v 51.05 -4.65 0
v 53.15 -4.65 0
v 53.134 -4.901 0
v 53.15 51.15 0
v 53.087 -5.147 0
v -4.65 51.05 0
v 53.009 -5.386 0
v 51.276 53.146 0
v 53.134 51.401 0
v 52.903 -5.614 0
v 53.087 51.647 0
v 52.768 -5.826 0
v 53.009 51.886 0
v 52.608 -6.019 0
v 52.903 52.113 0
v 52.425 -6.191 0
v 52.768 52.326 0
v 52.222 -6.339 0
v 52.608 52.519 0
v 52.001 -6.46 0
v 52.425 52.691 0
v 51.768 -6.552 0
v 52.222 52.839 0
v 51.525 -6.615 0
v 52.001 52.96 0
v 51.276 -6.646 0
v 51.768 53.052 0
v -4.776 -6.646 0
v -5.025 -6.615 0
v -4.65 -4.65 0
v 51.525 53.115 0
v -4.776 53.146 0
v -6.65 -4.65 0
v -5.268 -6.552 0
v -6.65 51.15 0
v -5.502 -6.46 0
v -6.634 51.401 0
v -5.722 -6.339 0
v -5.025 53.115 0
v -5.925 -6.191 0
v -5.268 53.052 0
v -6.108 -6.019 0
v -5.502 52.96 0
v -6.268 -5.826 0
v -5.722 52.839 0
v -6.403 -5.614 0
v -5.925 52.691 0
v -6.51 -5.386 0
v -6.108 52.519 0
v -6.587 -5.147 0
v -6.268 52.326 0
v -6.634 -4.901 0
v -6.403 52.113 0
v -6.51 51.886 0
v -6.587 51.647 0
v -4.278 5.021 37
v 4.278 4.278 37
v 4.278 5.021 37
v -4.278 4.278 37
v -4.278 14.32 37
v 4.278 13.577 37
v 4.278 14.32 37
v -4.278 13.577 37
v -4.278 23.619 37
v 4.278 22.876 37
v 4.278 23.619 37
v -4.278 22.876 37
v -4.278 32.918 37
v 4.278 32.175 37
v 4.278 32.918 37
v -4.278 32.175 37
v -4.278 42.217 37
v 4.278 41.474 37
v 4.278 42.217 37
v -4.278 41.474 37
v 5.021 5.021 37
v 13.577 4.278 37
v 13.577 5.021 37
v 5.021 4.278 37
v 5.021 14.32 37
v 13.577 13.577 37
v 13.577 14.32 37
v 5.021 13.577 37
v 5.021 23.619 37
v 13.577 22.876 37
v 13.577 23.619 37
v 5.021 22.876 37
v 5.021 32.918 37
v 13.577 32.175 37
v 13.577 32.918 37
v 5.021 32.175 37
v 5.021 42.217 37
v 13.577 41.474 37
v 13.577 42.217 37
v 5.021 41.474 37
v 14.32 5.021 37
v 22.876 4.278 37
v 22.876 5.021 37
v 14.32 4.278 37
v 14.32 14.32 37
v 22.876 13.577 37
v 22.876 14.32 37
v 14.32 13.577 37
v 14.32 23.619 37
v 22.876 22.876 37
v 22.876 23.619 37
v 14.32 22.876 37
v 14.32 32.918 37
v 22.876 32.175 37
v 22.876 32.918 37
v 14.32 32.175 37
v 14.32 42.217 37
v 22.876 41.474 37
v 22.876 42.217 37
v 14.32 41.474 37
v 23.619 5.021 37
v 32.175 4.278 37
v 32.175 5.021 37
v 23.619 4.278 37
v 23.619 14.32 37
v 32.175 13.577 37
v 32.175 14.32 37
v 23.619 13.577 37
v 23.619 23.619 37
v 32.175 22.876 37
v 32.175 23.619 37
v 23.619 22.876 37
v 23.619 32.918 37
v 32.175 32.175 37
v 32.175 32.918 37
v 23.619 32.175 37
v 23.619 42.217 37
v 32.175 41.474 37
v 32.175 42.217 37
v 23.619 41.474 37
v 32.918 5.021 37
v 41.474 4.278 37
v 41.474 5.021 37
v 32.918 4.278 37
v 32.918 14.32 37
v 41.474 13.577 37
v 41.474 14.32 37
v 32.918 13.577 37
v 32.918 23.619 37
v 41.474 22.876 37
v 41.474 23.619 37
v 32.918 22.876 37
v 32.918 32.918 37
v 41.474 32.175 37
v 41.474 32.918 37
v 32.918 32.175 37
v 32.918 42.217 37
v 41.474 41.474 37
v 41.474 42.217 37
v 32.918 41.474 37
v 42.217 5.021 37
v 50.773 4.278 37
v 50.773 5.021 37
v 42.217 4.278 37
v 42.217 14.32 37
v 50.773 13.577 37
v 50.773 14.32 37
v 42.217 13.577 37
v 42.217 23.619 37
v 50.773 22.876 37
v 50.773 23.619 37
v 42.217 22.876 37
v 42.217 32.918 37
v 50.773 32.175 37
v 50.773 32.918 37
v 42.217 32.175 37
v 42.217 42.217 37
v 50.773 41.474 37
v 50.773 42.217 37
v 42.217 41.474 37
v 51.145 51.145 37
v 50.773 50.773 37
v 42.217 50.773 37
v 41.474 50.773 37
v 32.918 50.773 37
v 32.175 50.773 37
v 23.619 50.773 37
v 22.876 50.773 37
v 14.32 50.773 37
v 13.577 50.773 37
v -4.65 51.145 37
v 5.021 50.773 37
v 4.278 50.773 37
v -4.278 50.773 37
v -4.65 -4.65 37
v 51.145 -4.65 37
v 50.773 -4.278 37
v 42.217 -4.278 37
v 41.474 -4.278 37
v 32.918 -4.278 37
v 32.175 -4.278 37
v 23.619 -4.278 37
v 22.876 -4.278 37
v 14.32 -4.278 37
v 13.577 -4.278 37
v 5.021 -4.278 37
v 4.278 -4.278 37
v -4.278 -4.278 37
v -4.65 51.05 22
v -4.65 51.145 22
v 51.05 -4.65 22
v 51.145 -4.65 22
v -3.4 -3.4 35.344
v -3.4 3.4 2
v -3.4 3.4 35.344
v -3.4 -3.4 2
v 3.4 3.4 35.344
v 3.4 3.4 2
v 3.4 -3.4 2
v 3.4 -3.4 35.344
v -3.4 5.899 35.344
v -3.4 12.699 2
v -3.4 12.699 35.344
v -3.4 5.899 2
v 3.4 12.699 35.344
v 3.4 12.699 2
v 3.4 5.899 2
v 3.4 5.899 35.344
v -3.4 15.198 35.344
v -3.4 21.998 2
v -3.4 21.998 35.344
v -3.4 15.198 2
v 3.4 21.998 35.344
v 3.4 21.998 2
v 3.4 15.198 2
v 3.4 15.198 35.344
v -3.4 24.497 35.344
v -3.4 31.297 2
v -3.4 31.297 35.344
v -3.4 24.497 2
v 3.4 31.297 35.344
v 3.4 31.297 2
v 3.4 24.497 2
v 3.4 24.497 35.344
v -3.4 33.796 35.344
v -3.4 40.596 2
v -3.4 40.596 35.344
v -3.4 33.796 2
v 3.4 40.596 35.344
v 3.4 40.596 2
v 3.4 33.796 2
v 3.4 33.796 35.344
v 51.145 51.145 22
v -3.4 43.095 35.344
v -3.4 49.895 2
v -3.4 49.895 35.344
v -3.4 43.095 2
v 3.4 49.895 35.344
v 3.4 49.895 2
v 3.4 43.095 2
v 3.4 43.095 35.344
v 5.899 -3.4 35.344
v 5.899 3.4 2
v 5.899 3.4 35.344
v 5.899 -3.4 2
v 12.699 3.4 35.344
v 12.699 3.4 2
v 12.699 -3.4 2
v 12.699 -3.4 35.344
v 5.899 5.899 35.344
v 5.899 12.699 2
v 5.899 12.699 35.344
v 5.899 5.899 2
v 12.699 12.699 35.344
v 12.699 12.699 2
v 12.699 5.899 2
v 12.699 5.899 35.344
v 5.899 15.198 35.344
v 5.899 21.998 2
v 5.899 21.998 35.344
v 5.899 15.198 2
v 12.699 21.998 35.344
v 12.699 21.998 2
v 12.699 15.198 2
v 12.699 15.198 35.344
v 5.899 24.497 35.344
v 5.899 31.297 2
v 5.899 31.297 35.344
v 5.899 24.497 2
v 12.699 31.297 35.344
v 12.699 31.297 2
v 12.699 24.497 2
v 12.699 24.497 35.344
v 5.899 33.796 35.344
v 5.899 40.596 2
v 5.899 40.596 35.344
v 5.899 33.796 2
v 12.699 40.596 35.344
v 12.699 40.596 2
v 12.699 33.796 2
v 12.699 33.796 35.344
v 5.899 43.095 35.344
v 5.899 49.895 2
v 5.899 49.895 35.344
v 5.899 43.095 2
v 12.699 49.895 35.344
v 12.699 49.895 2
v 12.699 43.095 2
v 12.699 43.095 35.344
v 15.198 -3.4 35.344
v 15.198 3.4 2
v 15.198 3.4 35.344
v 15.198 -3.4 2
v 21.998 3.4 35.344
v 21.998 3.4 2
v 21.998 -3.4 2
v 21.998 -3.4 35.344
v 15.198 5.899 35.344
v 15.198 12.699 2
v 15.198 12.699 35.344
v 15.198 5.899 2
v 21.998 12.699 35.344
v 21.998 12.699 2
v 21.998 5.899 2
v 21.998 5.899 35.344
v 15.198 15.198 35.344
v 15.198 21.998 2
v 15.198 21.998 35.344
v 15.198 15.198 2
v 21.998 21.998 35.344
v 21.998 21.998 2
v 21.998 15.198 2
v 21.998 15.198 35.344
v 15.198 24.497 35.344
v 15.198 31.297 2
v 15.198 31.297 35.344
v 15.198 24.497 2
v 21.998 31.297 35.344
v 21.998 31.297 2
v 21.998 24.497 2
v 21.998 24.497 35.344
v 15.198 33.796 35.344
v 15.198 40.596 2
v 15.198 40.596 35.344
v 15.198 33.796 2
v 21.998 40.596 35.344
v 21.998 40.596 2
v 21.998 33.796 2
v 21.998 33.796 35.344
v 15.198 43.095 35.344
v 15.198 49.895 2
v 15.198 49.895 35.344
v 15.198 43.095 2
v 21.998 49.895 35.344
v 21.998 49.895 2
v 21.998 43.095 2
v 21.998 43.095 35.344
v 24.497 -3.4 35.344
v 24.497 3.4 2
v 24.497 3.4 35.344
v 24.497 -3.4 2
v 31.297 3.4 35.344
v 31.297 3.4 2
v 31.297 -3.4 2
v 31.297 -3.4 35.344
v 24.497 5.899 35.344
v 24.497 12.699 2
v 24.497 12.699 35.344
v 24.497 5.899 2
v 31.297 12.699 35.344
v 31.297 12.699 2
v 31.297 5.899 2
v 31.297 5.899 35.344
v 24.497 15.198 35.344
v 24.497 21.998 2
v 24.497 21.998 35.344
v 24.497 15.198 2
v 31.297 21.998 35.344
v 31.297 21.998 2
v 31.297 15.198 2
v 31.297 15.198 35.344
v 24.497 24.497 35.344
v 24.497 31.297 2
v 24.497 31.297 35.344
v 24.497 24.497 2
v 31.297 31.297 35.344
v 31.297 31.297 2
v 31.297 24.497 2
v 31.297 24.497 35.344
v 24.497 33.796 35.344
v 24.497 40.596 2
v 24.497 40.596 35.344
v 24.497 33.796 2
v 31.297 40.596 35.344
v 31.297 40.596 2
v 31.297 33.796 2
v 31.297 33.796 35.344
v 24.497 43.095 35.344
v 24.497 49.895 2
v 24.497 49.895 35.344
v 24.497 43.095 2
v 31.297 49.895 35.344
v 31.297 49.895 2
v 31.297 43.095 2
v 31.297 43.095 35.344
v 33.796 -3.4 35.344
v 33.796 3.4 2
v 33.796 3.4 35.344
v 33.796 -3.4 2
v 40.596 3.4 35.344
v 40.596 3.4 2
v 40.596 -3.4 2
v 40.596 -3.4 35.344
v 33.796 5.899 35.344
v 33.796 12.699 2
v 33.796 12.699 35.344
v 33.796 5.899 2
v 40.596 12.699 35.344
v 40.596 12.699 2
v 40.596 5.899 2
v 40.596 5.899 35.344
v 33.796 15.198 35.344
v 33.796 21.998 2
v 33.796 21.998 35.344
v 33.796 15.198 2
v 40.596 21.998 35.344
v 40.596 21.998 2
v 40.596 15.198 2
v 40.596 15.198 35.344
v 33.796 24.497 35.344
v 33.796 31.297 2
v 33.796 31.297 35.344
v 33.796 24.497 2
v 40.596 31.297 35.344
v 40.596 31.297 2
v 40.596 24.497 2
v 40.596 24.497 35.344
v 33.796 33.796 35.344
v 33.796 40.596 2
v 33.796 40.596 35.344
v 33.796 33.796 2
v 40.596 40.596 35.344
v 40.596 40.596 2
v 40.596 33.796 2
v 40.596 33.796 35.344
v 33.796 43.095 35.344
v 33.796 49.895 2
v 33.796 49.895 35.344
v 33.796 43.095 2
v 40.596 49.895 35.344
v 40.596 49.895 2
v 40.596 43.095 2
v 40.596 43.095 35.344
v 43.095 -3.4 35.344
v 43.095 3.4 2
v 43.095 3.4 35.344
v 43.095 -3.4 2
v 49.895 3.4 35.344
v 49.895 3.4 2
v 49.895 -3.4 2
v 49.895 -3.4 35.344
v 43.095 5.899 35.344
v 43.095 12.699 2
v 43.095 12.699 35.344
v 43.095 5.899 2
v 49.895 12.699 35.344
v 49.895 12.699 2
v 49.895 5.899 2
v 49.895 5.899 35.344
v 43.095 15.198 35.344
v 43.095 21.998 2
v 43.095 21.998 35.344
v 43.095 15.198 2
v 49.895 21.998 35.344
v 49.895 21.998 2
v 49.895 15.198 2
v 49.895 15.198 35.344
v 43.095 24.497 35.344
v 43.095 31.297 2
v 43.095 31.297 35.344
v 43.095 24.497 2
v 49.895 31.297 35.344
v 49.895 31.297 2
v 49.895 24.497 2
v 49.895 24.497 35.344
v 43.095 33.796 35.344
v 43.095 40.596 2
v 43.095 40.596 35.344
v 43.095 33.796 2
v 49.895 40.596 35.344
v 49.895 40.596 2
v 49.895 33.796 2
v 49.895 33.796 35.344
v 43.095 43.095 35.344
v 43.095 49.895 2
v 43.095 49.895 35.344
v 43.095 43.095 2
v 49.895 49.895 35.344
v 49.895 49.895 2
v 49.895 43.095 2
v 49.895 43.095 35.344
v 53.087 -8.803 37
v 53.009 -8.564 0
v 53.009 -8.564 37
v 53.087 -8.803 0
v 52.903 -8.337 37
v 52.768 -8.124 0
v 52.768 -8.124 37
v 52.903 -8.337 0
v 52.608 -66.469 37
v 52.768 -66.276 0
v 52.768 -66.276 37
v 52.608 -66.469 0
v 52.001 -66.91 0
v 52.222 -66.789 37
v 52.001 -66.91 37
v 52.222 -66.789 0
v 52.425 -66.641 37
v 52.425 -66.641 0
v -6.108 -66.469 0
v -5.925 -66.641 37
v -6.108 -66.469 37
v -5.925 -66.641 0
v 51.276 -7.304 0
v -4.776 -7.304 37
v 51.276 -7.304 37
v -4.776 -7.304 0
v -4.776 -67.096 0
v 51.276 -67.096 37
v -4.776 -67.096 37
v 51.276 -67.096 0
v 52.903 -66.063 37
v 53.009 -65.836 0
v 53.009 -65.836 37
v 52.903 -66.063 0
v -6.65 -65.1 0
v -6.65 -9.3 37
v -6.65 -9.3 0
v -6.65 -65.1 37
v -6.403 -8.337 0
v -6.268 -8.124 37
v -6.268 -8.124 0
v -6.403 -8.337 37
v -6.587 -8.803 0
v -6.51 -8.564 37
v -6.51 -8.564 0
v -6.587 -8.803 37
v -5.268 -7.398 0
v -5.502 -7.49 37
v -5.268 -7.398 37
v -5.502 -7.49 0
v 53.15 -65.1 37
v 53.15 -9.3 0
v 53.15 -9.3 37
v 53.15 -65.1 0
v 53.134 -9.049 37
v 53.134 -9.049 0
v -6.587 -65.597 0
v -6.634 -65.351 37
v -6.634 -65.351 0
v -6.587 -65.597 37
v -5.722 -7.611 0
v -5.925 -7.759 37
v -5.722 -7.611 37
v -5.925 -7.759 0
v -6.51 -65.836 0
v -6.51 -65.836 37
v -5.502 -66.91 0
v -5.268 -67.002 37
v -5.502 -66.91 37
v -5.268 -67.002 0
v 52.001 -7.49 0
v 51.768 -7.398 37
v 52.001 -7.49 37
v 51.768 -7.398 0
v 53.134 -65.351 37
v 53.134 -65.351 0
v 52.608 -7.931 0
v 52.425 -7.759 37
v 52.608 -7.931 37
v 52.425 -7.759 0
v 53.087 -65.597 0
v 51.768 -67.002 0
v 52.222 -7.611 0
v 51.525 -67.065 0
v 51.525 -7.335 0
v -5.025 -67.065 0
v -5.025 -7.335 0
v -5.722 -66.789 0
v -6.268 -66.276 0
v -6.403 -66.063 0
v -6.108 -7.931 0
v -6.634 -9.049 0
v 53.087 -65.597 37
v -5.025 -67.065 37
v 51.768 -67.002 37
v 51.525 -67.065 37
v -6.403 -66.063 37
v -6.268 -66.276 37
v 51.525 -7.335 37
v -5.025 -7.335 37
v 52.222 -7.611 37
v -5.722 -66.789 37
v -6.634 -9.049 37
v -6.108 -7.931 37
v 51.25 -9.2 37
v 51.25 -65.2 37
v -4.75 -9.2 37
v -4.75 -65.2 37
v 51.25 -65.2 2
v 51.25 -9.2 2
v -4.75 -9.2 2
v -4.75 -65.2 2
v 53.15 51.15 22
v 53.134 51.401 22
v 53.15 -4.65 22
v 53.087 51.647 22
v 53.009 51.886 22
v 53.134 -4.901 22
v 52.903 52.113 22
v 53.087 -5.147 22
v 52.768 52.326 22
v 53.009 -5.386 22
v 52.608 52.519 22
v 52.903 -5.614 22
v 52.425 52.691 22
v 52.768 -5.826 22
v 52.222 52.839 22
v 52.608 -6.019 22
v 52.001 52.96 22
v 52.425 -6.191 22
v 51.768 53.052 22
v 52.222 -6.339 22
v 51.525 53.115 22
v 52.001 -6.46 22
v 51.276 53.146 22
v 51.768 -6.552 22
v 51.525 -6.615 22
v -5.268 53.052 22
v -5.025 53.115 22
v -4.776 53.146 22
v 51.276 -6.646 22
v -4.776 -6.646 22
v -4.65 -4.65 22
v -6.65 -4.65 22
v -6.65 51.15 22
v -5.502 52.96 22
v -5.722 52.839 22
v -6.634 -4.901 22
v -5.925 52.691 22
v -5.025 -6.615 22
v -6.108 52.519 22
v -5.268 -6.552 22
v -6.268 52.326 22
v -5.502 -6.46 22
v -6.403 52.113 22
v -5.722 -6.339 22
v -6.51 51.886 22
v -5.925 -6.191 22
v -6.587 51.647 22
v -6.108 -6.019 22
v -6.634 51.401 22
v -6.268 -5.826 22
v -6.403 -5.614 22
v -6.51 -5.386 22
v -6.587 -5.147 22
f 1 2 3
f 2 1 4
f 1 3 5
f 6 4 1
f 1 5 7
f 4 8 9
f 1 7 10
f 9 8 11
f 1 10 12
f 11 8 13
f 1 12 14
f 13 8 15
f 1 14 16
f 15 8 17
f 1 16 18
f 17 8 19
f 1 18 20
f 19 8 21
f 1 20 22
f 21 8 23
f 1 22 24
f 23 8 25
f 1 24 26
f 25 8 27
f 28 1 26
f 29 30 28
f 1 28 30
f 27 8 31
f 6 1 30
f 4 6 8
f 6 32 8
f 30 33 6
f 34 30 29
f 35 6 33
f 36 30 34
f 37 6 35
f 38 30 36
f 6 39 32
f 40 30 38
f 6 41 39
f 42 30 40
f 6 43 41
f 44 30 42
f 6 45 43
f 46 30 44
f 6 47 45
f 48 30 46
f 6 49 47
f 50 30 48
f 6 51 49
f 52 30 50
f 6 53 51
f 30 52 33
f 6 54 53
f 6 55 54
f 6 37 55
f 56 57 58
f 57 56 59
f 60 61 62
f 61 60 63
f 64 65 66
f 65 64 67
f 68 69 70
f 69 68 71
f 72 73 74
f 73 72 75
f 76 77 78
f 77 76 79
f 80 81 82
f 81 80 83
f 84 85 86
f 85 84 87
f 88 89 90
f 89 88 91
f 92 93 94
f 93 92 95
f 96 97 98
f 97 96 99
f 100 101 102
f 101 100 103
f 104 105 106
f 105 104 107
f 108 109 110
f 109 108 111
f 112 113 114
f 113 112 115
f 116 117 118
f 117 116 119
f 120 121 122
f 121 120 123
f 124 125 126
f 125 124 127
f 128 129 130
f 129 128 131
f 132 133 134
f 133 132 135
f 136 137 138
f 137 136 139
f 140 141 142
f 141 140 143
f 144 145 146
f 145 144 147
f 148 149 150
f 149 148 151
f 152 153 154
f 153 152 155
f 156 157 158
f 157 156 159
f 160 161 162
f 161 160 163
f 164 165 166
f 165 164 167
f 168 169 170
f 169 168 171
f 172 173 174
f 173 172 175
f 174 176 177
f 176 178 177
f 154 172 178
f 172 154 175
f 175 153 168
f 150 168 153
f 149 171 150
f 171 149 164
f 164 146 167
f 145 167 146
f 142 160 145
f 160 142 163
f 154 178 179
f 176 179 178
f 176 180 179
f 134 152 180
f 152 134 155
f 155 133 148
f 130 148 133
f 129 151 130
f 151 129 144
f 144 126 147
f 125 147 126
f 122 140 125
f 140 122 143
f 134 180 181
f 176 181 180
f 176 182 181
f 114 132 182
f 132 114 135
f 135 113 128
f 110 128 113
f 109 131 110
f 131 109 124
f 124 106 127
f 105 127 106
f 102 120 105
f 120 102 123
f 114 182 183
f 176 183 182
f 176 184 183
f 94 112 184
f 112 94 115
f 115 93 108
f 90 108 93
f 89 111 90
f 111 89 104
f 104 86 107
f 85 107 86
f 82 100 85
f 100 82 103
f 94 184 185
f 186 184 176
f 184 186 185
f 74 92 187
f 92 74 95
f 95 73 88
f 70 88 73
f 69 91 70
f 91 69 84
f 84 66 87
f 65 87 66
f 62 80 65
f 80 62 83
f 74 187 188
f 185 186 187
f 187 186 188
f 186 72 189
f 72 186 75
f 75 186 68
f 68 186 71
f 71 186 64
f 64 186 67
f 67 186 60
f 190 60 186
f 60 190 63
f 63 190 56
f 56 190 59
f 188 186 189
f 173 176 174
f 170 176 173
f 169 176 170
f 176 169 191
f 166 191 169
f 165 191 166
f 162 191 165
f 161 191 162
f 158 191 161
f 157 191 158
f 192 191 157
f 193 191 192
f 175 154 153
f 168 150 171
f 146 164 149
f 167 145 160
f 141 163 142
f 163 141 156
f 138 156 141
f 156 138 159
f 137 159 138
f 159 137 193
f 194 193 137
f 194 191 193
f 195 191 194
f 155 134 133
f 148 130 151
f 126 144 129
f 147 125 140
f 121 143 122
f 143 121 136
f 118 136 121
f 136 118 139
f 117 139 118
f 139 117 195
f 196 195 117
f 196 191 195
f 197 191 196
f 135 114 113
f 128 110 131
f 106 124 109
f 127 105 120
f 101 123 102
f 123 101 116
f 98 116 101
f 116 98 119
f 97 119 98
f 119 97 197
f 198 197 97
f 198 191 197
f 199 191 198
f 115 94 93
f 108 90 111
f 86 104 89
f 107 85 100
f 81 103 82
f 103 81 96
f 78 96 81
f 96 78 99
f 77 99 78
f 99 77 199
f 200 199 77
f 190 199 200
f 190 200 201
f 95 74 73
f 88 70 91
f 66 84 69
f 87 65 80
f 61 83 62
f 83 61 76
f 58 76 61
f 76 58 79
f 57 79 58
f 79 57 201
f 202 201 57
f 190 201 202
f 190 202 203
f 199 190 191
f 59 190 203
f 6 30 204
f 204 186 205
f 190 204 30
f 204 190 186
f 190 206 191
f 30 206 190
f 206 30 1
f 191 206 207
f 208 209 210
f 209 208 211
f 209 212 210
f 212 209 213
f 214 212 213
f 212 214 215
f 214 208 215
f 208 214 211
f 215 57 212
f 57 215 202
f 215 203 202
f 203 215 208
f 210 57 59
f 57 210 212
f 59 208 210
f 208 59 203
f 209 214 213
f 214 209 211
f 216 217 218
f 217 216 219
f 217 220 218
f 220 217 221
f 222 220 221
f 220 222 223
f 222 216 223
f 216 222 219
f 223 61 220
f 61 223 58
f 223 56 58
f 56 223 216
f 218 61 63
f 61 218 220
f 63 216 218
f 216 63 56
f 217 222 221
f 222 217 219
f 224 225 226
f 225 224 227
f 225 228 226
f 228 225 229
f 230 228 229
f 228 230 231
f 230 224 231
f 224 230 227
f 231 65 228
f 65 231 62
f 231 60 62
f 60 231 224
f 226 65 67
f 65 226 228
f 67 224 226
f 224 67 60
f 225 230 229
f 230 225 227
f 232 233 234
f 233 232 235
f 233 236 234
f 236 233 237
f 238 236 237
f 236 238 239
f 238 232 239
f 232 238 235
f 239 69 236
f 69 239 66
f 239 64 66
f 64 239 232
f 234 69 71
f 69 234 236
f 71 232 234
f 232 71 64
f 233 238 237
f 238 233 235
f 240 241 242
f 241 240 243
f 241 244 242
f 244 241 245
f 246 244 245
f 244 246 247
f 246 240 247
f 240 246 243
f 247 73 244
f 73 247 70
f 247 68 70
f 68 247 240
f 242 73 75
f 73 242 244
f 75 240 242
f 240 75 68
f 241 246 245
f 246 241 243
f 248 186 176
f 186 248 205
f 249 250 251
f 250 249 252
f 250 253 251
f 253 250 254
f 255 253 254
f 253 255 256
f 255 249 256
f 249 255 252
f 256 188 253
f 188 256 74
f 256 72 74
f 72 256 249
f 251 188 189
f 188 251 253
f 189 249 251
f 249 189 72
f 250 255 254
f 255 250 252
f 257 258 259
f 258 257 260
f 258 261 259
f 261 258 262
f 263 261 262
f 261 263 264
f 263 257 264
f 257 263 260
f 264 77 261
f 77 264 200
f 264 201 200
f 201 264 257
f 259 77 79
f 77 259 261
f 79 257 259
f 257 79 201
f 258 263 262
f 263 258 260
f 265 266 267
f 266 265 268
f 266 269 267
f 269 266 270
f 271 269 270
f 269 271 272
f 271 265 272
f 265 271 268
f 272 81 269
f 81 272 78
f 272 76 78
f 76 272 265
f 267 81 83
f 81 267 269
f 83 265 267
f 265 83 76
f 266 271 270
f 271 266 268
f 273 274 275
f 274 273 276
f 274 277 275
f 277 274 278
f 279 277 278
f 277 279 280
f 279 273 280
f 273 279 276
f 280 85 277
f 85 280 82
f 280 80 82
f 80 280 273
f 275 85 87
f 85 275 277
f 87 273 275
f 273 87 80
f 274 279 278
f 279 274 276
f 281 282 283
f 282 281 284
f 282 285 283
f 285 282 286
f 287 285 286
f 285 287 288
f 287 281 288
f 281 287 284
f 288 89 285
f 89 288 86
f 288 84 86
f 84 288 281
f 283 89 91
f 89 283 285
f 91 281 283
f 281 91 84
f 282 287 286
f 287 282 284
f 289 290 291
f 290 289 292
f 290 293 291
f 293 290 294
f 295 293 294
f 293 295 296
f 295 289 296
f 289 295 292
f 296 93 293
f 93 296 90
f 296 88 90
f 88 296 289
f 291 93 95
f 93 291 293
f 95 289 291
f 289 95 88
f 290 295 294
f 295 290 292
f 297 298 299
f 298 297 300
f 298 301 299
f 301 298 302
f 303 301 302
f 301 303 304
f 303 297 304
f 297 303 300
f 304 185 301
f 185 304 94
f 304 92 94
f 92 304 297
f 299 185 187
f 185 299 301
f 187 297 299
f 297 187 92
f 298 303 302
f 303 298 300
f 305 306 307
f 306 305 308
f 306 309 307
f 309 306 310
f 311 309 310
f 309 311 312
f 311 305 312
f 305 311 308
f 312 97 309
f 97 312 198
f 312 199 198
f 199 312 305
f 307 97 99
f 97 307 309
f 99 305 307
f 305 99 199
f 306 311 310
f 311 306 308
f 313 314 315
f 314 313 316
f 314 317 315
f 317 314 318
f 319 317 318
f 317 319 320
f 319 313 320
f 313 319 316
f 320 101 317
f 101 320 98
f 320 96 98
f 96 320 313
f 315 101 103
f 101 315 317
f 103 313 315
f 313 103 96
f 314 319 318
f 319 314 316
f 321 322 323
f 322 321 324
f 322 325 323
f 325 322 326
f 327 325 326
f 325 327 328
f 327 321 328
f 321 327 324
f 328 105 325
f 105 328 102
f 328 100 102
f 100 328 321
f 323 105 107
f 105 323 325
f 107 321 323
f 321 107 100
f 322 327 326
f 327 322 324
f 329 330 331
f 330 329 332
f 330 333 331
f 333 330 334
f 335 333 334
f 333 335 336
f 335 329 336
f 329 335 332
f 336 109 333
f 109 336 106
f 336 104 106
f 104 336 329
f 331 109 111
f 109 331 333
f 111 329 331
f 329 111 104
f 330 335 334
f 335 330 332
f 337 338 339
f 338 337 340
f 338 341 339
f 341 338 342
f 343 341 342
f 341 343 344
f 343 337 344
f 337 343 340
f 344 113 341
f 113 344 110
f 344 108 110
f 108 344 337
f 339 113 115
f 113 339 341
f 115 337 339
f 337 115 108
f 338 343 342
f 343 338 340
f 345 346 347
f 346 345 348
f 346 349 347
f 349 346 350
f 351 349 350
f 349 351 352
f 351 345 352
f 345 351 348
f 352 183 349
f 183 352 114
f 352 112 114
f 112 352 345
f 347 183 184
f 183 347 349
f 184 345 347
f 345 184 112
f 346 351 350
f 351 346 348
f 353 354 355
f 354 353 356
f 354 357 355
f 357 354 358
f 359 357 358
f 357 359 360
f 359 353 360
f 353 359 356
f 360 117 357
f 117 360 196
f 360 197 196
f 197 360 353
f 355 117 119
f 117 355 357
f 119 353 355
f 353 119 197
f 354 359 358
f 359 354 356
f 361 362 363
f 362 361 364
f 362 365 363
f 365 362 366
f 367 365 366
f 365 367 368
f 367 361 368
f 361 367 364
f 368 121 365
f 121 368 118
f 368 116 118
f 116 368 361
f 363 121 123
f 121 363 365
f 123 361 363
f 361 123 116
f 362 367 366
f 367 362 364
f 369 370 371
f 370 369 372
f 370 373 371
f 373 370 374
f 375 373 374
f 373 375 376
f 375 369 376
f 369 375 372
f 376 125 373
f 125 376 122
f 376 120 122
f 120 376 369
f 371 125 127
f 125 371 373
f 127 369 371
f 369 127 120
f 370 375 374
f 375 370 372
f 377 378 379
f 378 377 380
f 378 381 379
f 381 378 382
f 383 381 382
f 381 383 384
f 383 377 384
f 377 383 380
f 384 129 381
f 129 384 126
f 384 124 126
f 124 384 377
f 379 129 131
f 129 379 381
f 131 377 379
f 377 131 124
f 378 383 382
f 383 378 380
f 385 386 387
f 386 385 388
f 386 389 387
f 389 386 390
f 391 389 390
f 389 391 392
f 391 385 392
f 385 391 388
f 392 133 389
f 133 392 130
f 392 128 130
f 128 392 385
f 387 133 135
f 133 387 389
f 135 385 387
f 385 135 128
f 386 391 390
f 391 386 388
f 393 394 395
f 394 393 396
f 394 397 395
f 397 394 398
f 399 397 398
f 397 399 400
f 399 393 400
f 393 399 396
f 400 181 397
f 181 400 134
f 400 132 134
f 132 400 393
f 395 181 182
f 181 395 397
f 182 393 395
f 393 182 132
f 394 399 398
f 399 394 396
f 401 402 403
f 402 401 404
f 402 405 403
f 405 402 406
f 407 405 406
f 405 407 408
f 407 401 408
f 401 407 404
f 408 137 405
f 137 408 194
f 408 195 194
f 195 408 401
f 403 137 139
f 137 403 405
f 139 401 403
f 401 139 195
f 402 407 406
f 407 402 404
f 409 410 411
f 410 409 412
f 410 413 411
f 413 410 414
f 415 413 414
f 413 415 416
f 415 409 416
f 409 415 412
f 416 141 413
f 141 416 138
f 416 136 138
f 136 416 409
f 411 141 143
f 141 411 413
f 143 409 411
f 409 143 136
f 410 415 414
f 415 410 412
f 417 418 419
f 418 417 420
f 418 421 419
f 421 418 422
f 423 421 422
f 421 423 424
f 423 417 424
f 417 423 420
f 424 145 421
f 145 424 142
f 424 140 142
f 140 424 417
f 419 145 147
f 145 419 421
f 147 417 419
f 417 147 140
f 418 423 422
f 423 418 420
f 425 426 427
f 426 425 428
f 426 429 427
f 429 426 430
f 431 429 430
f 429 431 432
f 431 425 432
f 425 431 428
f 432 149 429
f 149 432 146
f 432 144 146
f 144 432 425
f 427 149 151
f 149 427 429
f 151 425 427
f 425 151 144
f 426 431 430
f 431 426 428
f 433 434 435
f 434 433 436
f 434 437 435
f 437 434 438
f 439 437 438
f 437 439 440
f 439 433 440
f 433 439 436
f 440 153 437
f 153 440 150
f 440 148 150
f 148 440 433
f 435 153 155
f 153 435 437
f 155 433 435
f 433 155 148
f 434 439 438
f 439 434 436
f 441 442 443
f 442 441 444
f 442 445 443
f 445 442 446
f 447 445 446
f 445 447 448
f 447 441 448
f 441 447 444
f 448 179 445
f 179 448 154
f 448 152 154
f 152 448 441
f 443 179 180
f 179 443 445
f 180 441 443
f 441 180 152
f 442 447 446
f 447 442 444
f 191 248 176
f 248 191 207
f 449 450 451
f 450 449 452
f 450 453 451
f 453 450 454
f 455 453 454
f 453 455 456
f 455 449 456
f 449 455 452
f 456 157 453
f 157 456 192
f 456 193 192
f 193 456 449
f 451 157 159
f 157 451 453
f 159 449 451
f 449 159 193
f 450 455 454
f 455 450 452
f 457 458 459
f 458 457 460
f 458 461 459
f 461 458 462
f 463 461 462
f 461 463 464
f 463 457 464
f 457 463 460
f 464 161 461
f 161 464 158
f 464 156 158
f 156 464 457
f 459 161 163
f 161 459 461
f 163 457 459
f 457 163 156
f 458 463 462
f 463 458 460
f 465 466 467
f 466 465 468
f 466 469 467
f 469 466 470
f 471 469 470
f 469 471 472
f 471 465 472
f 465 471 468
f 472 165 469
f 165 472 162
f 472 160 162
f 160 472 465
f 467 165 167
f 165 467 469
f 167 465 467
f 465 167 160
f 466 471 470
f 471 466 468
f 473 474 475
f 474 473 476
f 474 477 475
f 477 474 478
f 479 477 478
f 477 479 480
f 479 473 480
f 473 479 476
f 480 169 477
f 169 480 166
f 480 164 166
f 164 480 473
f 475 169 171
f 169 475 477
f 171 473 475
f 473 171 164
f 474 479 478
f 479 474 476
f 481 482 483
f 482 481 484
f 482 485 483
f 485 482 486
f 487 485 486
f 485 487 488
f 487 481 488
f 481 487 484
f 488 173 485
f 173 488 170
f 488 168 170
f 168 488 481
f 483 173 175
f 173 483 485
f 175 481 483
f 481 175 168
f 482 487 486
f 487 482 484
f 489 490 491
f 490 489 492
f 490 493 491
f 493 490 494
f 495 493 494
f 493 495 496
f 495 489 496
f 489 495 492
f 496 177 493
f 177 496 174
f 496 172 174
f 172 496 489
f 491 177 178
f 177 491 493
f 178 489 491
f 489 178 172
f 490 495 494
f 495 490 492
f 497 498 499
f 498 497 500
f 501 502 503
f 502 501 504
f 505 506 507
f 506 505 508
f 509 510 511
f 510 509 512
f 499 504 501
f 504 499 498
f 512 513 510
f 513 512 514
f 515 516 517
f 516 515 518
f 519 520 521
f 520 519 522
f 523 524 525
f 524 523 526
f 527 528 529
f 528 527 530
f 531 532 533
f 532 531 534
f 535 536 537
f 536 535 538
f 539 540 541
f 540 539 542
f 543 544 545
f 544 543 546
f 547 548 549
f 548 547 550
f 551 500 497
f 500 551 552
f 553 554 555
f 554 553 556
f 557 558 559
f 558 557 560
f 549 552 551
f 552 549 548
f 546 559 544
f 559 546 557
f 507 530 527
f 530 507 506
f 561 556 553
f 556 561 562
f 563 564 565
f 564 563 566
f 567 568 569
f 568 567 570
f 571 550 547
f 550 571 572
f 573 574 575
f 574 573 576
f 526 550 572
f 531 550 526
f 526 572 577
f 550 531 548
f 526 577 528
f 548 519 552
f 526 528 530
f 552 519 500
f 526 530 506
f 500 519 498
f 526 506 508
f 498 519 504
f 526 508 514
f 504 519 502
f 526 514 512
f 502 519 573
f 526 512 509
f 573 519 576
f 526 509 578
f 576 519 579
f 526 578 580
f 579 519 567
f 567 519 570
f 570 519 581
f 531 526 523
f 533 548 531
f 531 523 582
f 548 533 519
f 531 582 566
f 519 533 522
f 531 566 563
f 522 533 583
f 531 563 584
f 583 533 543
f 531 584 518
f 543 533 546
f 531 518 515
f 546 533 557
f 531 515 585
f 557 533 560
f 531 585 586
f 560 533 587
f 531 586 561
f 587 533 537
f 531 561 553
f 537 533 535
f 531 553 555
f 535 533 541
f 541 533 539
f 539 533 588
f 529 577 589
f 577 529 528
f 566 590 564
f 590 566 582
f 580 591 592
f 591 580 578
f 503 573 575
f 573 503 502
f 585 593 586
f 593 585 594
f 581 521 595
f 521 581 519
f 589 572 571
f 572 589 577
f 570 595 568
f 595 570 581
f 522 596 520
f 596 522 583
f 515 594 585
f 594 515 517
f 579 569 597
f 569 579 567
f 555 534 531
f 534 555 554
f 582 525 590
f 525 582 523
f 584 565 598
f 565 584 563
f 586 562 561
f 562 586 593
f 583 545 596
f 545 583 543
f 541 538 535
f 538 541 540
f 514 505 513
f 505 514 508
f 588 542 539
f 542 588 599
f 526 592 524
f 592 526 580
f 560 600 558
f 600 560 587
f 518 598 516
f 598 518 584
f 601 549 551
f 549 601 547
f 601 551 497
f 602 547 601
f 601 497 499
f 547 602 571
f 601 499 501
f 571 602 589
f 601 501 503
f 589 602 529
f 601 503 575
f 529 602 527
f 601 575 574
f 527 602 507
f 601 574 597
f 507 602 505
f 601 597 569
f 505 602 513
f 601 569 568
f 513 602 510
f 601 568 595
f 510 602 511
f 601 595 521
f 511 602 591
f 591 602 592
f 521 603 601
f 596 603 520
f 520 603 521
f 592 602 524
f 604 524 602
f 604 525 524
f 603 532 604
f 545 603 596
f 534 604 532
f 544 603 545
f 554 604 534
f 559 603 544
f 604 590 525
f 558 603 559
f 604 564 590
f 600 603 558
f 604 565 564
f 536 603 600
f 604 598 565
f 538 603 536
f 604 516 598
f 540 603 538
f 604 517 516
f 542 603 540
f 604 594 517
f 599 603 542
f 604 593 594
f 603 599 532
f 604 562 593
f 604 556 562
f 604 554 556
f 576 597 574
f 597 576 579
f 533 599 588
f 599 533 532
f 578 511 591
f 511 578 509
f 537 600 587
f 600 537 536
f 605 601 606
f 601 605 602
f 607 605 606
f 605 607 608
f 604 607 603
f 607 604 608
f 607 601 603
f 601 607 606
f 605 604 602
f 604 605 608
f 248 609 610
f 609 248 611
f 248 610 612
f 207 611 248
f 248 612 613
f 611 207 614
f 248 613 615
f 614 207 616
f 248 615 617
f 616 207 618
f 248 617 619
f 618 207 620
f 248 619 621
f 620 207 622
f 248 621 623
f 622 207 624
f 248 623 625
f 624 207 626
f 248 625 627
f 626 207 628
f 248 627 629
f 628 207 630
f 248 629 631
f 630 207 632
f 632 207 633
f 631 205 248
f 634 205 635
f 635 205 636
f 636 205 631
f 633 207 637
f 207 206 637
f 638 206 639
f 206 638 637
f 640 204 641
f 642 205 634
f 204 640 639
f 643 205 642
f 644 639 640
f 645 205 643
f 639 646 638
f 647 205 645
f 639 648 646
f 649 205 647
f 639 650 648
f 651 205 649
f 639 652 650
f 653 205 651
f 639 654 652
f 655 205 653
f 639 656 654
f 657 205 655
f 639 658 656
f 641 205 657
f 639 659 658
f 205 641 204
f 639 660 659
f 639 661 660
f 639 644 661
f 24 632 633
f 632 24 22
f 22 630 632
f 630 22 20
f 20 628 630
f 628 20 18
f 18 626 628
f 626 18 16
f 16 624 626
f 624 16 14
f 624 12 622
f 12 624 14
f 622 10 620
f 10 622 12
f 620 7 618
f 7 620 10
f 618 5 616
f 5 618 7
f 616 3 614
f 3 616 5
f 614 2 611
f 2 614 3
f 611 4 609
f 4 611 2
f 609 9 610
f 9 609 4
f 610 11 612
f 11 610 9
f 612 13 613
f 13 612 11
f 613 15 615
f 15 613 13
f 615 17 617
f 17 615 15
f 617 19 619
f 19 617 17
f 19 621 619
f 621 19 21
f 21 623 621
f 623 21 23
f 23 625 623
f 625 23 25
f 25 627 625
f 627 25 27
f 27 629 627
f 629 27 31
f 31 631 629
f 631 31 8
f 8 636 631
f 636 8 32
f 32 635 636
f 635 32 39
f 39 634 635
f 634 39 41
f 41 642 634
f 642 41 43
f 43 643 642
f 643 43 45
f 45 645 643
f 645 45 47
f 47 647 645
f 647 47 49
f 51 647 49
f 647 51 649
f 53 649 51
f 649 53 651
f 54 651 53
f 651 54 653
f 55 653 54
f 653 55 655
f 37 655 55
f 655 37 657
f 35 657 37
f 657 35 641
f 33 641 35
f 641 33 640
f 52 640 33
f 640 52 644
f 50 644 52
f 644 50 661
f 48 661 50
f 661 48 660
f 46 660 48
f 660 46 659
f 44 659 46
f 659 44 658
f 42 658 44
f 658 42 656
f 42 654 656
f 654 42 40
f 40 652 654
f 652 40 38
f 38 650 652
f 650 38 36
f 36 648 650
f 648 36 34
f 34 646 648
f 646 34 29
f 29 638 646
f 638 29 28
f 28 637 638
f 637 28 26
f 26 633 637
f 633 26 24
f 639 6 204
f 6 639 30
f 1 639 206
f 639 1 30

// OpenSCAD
// file: bitholder.scad
module _bit_holder(x, y, z, ox, oy, oz) {
     box_dim = (x + y) / 2 ;

     linear_extrude(oz-z) {
	  square([x, y], true);
     };

     difference() {
	  linear_extrude(oz) {
	       difference() {
		    square([ox, oy], true);
		    square([x, y], true);
	       };
	  };
	  translate([0, 0, oz-3]) {
	       rotate([0, 0, 45]) {
		    cylinder(4, box_dim - 3, box_dim, $fn=4);
	       }
	  };
     };
}


module grid(count_x, count_y, spacing) {
     for(col=[0:count_x-1]) {
	  for(row=[0:count_y-1]) {
	       translate([spacing * col, spacing * row]) {
		    children();
	       };
	  };
     };
}


module bit_grid(count_x, count_y, bit_x, bit_y, z, spacing, base) {
     box_dim = (bit_x + bit_y + spacing) / 2;

     // imperceptible overlap to ensure they're a single object
     grid_spacing = box_dim - 0.001;

     grid(count_x, count_y, grid_spacing) {
	  _bit_holder(bit_x, bit_y, z,
		      box_dim, box_dim,
		      z + base);
     };
}


module bit_box(count_x, count_y, bit_x, bit_y, bit_z,
	       bottom_z, top_z,
	       spacing, base) {

     box_dim = (bit_x + bit_y + spacing) / 2;

     bit_grid(count_x, count_y, bit_x, bit_y, bit_z, spacing, base);

     // bottom box
     translate([-box_dim / 2, -box_dim / 2]) {
	  linear_extrude(bottom_z + base) {
	       difference() {
		    minkowski() {
			 circle(2, $fn=50);
			 square([count_x * box_dim, count_y * box_dim]);
		    };

		    // we shrink the subtractive square slightly to
		    // ensure there's overlap with the bit_grid,
		    // preventing them from being treated as separate
		    // objects.
		    square([(count_x * box_dim) - 0.1,
			    (count_y * box_dim) - 0.1]);
	       };
	  };
     };

     lid_slop = 0.2;

     // box lid
     translate([-box_dim / 2, -box_dim * (count_y + 1)]) {
	  difference () {
	       linear_extrude(top_z + base) {
		    minkowski() {
			 circle(2, $fn=50);
			 square([count_x * box_dim, count_y * box_dim]);
		    };
	       };

	       // need some clearance in order to fit smoothly over
	       // the top of the bottom box
	       translate([-lid_slop / 2, -lid_slop / 2, base]) {
		    cube([(count_x * box_dim) + lid_slop,
			  (count_y * box_dim) + lid_slop,
			  top_z + 1]);
	       };
	  };
     };

}


bit_box(2, 2, 6.8, 6.8, 35, 20, 35, 5, 2);
// main file
use <bitholder.scad>;

bit_box(6, 6, 6.8, 6.8, 35, 20, 35, 5, 2);
